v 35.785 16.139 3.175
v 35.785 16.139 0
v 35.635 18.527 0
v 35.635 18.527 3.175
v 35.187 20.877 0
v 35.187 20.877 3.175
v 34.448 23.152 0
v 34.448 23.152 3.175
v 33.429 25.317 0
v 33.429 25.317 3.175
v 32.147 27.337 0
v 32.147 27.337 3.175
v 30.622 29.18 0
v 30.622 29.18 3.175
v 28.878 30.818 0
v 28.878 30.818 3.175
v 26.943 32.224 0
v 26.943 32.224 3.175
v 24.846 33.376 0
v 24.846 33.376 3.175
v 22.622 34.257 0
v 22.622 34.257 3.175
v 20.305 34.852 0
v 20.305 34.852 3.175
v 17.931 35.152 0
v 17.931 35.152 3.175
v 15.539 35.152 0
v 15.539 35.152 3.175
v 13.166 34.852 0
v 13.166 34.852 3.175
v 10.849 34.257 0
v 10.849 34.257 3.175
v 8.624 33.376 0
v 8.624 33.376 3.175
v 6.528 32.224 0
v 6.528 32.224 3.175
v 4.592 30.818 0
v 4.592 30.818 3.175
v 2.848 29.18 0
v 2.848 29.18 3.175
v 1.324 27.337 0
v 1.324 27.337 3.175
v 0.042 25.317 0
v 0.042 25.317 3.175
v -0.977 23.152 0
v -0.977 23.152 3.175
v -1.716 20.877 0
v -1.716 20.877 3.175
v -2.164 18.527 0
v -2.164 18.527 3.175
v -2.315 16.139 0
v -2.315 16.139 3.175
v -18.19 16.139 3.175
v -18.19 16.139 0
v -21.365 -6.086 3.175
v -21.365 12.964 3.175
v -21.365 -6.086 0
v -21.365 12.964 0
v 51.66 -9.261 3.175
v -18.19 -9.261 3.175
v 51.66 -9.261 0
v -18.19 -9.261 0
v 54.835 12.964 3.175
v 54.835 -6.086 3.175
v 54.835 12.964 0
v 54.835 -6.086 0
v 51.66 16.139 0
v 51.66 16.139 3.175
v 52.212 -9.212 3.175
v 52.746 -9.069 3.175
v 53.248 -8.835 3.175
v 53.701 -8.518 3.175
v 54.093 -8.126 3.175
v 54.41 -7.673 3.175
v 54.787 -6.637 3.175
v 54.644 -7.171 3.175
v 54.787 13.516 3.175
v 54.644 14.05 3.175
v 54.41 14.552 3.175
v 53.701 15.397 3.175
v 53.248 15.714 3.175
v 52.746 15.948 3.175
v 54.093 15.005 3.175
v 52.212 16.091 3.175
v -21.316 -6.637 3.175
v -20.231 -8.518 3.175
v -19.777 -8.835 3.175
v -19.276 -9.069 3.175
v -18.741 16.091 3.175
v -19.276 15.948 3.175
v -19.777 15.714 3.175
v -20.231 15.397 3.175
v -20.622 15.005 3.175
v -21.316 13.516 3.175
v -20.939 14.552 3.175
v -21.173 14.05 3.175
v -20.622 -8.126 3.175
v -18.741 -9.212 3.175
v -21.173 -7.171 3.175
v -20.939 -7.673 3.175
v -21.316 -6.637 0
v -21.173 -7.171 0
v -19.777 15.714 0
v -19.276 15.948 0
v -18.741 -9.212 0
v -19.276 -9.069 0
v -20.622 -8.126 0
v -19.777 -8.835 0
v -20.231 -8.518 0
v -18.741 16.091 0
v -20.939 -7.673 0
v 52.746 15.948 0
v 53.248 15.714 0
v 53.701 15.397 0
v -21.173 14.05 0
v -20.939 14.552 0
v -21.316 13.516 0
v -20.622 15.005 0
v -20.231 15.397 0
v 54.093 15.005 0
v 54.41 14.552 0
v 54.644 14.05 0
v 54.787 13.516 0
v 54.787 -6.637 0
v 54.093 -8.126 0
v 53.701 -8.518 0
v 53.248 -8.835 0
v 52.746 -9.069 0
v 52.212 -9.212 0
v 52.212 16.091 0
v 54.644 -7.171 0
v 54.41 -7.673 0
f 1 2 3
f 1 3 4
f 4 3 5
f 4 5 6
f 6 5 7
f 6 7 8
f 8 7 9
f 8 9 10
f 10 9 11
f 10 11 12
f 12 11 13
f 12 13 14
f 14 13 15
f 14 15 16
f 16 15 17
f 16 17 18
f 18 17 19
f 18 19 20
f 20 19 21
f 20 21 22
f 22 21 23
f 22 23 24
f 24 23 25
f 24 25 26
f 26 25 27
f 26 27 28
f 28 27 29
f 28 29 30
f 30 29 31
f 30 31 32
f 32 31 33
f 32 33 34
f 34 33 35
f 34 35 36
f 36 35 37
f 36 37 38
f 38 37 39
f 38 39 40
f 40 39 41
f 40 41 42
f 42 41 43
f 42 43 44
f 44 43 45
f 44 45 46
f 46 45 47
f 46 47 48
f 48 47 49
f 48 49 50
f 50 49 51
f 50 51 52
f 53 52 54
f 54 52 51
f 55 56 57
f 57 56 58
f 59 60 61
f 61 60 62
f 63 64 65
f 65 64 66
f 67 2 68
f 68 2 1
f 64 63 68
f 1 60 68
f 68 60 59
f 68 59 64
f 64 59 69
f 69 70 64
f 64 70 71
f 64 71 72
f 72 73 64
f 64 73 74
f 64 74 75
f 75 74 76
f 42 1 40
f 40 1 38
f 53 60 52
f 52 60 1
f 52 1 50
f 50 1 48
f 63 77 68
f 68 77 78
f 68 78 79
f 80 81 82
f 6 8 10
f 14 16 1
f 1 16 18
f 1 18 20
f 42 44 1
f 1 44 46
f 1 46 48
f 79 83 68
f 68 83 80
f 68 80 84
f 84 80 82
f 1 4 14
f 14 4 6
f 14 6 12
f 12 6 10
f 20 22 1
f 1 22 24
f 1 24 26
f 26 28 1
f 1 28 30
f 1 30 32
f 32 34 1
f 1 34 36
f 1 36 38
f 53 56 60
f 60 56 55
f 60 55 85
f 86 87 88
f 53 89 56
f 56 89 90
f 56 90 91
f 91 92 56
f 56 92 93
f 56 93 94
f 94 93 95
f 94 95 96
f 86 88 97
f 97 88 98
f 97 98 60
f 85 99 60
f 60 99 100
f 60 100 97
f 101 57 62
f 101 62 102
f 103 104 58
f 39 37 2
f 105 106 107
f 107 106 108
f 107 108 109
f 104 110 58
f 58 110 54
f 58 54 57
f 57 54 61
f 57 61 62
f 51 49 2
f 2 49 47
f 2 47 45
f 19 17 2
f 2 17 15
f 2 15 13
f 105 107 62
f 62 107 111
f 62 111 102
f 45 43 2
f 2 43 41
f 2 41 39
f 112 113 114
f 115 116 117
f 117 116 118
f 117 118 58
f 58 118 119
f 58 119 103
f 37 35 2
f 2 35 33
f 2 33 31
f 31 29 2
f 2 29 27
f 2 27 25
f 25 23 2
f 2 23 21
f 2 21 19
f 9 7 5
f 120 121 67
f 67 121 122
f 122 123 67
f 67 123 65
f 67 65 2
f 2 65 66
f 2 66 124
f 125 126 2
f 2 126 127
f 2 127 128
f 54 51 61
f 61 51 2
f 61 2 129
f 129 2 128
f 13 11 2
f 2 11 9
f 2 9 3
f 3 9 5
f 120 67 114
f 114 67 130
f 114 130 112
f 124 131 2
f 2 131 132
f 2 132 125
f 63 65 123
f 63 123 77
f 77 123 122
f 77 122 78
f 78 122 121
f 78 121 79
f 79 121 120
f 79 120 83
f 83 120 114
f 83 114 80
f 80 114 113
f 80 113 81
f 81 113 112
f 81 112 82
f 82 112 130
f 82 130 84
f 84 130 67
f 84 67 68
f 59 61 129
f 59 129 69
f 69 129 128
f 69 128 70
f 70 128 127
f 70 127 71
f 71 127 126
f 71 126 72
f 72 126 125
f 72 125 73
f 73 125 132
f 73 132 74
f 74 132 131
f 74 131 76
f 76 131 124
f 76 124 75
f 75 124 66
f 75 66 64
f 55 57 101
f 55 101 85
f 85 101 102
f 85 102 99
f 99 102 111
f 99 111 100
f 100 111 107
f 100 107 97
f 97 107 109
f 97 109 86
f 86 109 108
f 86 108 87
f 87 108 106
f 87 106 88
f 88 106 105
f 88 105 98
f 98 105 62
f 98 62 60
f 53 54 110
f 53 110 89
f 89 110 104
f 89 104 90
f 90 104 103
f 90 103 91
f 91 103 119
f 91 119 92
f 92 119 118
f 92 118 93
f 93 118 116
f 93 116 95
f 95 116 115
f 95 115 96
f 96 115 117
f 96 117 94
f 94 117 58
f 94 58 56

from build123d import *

# Parameters (mm, degrees)
BOSS_EXTRUDE3_DEPTH = 3.175
FILLET1_R           = 3.175


with BuildPart() as part:
    # Sketch1 → Boss-Extrude3 (new body)
    with BuildSketch(Plane.XY):
        with BuildLine():
            Line((35.78531497, 16.139458277), (54.83531497, 16.139458277))
            Line((54.83531497, 16.139458277), (54.83531497, -9.260541723))
            Line((54.83531497, -9.260541723), (-21.36468503, -9.260541723))
            Line((-21.36468503, -9.260541723), (-21.36468503, 16.139458277))
            Line((-21.36468503, 16.139458277), (-2.31468503, 16.139458277))
            ThreePointArc((-2.31468503, 16.139458277), (16.73531497, 35.189458277), (35.78531497, 16.139458277))
        make_face()
    extrude(amount=BOSS_EXTRUDE3_DEPTH)

    # Fillet1
    fillet1_edges = [part.edges().sort_by_distance(p)[0] for p in [
        (54.83531497, 16.139458277, 1.5875),
        (54.83531497, -9.260541723, 1.5875),
        (-21.36468503, -9.260541723, 1.5875),
        (-21.36468503, 16.139458277, 1.5875),
    ]]
    fillet(fillet1_edges, radius=FILLET1_R)


solid = part.part
